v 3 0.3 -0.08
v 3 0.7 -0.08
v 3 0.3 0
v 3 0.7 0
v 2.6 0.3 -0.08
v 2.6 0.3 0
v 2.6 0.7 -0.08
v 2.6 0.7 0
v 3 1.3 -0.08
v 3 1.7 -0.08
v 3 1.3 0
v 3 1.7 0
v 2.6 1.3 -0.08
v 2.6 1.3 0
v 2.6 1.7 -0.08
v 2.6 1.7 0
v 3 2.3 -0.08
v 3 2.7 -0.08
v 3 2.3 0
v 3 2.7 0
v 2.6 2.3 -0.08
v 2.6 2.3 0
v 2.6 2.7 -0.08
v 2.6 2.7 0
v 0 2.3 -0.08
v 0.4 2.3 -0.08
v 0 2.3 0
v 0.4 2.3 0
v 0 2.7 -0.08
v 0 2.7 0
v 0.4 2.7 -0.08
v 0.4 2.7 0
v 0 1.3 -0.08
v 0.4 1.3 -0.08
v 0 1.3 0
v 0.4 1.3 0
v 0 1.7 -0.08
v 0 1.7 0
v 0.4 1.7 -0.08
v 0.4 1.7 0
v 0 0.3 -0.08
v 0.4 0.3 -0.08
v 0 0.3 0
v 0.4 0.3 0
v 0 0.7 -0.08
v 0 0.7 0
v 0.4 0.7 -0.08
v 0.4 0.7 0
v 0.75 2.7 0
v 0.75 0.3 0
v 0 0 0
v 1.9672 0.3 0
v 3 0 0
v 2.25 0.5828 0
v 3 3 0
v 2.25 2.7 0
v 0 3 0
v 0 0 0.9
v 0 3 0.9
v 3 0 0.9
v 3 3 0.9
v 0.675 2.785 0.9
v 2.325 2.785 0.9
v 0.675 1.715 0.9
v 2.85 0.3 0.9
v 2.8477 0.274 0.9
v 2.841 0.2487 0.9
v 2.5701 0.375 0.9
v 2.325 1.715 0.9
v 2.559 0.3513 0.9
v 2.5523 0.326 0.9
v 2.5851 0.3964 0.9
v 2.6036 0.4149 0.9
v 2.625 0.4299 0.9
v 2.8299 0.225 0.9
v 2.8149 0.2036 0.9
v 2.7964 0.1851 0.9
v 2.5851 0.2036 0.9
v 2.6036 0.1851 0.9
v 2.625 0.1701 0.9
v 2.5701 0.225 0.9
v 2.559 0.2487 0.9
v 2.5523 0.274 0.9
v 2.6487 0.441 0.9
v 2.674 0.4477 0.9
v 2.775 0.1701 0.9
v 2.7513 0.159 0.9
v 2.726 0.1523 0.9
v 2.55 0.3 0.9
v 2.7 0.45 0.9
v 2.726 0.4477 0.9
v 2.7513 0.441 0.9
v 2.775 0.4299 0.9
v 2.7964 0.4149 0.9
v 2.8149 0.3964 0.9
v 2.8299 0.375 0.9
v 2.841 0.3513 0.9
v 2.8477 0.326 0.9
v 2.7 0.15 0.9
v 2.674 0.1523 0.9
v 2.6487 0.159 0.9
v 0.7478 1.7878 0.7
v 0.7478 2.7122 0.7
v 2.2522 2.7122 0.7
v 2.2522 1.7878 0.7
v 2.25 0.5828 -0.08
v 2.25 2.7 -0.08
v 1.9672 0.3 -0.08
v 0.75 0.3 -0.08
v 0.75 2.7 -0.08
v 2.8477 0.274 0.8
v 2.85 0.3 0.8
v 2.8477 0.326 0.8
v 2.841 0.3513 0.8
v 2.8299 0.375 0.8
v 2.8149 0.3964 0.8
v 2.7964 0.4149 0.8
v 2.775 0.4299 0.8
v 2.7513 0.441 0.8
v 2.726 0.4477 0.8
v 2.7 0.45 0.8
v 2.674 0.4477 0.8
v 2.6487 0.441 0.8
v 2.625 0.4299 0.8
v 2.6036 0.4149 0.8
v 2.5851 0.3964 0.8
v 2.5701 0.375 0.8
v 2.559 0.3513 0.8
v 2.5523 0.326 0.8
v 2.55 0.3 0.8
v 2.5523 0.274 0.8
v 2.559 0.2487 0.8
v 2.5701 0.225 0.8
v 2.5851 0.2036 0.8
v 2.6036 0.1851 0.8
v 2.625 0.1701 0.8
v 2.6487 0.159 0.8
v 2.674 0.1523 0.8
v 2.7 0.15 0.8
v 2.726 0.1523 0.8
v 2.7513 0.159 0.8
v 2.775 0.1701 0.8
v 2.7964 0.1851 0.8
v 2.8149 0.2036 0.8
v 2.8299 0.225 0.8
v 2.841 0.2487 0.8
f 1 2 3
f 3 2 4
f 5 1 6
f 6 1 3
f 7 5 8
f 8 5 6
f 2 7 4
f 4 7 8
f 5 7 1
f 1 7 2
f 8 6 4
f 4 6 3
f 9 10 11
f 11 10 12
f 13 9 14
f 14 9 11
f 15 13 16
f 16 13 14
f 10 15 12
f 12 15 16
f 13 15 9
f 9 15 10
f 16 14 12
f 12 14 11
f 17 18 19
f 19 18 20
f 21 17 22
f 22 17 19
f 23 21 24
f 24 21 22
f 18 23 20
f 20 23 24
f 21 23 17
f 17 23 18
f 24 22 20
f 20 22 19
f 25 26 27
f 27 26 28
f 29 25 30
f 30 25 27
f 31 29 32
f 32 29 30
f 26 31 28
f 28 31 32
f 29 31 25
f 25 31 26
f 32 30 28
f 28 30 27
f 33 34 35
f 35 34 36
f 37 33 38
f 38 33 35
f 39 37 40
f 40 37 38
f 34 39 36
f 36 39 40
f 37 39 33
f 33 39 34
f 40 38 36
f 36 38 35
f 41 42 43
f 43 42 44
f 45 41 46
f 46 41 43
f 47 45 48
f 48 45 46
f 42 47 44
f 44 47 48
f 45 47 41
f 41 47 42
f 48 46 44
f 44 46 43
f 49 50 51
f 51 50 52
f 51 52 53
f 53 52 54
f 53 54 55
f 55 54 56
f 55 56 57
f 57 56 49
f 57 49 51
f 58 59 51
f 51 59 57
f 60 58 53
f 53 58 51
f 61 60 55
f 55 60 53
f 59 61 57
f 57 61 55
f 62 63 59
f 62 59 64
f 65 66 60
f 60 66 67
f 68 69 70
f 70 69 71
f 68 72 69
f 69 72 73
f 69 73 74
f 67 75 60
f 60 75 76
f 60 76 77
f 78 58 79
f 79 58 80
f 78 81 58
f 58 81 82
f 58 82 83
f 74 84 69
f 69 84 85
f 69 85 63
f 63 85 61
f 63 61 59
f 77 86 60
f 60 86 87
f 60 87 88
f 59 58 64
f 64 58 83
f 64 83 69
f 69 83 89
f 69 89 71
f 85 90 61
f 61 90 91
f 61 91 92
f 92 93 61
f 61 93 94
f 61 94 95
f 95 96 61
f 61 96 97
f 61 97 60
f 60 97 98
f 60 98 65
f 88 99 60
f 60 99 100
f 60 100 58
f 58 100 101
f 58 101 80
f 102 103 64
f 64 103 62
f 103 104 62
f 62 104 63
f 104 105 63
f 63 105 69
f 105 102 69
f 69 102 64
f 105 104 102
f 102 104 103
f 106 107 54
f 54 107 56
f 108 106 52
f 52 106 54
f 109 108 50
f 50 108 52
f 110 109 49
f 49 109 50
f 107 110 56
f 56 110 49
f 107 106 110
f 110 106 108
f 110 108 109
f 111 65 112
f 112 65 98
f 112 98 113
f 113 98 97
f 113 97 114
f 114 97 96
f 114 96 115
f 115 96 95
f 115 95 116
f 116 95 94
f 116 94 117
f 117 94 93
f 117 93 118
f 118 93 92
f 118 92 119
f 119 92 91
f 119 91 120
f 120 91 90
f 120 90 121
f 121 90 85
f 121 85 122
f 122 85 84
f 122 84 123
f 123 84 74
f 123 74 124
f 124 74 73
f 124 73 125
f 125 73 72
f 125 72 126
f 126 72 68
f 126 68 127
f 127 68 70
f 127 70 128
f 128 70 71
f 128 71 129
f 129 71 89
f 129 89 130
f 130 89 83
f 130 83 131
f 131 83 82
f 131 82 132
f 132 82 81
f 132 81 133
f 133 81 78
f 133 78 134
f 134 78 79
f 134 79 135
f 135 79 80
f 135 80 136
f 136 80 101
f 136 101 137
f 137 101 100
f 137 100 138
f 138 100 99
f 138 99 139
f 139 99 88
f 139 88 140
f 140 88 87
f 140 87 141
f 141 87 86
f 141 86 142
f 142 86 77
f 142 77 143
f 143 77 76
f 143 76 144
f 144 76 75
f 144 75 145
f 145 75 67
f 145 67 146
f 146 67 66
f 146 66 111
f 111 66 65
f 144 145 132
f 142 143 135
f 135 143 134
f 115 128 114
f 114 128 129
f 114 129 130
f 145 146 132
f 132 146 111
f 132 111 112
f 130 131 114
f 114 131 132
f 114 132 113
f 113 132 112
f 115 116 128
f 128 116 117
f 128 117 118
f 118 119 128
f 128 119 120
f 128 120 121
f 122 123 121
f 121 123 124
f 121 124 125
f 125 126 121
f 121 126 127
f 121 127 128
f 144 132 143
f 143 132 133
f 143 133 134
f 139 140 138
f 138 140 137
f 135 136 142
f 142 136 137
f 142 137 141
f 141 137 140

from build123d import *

# Parameters (mm, degrees)
SKETCH1_W             = 3
SKETCH1_H             = 3
BOSS_EXTRUDE1_DEPTH   = 0.9
SKETCH2_W             = 1.65
SKETCH2_H             = 1.07
CUT_EXTRUDE1_DEPTH    = 0.2
CUT_EXTRUDE1_TAPER    = 20
BOSS_EXTRUDE2_DEPTH   = 0.08
SKETCH4_W             = 0.4
SKETCH4_H             = 0.4
BOSS_EXTRUDE3_DEPTH   = 0.08
BOSS_EXTRUDE3_2_DEPTH = 0.08
BOSS_EXTRUDE3_3_DEPTH = 0.08
BOSS_EXTRUDE3_4_DEPTH = 0.08
BOSS_EXTRUDE3_5_DEPTH = 0.08
BOSS_EXTRUDE3_6_DEPTH = 0.08
SKETCH5_R             = 0.15
CUT_EXTRUDE2_DEPTH    = 0.1


with BuildPart() as part:
    # Sketch1 → Boss-Extrude1 (new body)
    with BuildSketch(Plane.XY):
        with Locations((1.5, 1.5)):
            Rectangle(SKETCH1_W, SKETCH1_H)
    extrude(amount=BOSS_EXTRUDE1_DEPTH)

    # Sketch2 → Cut-Extrude1 (cut)
    with BuildSketch(Plane.XY.offset(0.9)):
        with Locations((1.5, 2.25)):
            Rectangle(SKETCH2_W, SKETCH2_H)
    extrude(amount=-CUT_EXTRUDE1_DEPTH, taper=CUT_EXTRUDE1_TAPER, mode=Mode.SUBTRACT)

    # Sketch3 → Boss-Extrude2 (add)
    with BuildSketch(Plane(origin=(0, 0, 0), x_dir=(-1, 0, 0), z_dir=(0, 0, -1))):
        Polygon((-2.25, 0.582842712), (-1.967157288, 0.3), (-0.75, 0.3), (-0.75, 2.7), (-2.25, 2.7), align=None)
    extrude(amount=BOSS_EXTRUDE2_DEPTH)

    # Sketch5 → Cut-Extrude2 (cut)
    with BuildSketch(Plane.XY.offset(0.9)):
        with Locations((2.7, 0.3)):
            Circle(SKETCH5_R)
    extrude(amount=-CUT_EXTRUDE2_DEPTH, mode=Mode.SUBTRACT)


with BuildPart() as body_2:
    # Sketch4 → Boss-Extrude3 (new body)
    with BuildSketch(Plane(origin=(0, 0, 0), x_dir=(-1, 0, 0), z_dir=(0, 0, -1))):
        with Locations((-2.8, 0.5)):
            Rectangle(SKETCH4_W, SKETCH4_H)
    extrude(amount=BOSS_EXTRUDE3_DEPTH)


with BuildPart() as body_3:
    # Sketch4 → Boss-Extrude3 2 (new body)
    with BuildSketch(Plane(origin=(0, 0, 0), x_dir=(-1, 0, 0), z_dir=(0, 0, -1))):
        with Locations((-2.8, 1.5)):
            Rectangle(SKETCH4_W, SKETCH4_H)
    extrude(amount=BOSS_EXTRUDE3_2_DEPTH)


with BuildPart() as body_4:
    # Sketch4 → Boss-Extrude3 3 (new body)
    with BuildSketch(Plane(origin=(0, 0, 0), x_dir=(-1, 0, 0), z_dir=(0, 0, -1))):
        with Locations((-2.8, 2.5)):
            Rectangle(SKETCH4_W, SKETCH4_H)
    extrude(amount=BOSS_EXTRUDE3_3_DEPTH)


with BuildPart() as body_5:
    # Sketch4 → Boss-Extrude3 4 (new body)
    with BuildSketch(Plane(origin=(0, 0, 0), x_dir=(-1, 0, 0), z_dir=(0, 0, -1))):
        with Locations((-0.2, 2.5)):
            Rectangle(SKETCH4_W, SKETCH4_H)
    extrude(amount=BOSS_EXTRUDE3_4_DEPTH)


with BuildPart() as body_6:
    # Sketch4 → Boss-Extrude3 5 (new body)
    with BuildSketch(Plane(origin=(0, 0, 0), x_dir=(-1, 0, 0), z_dir=(0, 0, -1))):
        with Locations((-0.2, 1.5)):
            Rectangle(SKETCH4_W, SKETCH4_H)
    extrude(amount=BOSS_EXTRUDE3_5_DEPTH)


with BuildPart() as body_7:
    # Sketch4 → Boss-Extrude3 6 (new body)
    with BuildSketch(Plane(origin=(0, 0, 0), x_dir=(-1, 0, 0), z_dir=(0, 0, -1))):
        with Locations((-0.2, 0.5)):
            Rectangle(SKETCH4_W, SKETCH4_H)
    extrude(amount=BOSS_EXTRUDE3_6_DEPTH)


solid = Compound([part.part, body_2.part, body_3.part, body_4.part, body_5.part, body_6.part, body_7.part])
